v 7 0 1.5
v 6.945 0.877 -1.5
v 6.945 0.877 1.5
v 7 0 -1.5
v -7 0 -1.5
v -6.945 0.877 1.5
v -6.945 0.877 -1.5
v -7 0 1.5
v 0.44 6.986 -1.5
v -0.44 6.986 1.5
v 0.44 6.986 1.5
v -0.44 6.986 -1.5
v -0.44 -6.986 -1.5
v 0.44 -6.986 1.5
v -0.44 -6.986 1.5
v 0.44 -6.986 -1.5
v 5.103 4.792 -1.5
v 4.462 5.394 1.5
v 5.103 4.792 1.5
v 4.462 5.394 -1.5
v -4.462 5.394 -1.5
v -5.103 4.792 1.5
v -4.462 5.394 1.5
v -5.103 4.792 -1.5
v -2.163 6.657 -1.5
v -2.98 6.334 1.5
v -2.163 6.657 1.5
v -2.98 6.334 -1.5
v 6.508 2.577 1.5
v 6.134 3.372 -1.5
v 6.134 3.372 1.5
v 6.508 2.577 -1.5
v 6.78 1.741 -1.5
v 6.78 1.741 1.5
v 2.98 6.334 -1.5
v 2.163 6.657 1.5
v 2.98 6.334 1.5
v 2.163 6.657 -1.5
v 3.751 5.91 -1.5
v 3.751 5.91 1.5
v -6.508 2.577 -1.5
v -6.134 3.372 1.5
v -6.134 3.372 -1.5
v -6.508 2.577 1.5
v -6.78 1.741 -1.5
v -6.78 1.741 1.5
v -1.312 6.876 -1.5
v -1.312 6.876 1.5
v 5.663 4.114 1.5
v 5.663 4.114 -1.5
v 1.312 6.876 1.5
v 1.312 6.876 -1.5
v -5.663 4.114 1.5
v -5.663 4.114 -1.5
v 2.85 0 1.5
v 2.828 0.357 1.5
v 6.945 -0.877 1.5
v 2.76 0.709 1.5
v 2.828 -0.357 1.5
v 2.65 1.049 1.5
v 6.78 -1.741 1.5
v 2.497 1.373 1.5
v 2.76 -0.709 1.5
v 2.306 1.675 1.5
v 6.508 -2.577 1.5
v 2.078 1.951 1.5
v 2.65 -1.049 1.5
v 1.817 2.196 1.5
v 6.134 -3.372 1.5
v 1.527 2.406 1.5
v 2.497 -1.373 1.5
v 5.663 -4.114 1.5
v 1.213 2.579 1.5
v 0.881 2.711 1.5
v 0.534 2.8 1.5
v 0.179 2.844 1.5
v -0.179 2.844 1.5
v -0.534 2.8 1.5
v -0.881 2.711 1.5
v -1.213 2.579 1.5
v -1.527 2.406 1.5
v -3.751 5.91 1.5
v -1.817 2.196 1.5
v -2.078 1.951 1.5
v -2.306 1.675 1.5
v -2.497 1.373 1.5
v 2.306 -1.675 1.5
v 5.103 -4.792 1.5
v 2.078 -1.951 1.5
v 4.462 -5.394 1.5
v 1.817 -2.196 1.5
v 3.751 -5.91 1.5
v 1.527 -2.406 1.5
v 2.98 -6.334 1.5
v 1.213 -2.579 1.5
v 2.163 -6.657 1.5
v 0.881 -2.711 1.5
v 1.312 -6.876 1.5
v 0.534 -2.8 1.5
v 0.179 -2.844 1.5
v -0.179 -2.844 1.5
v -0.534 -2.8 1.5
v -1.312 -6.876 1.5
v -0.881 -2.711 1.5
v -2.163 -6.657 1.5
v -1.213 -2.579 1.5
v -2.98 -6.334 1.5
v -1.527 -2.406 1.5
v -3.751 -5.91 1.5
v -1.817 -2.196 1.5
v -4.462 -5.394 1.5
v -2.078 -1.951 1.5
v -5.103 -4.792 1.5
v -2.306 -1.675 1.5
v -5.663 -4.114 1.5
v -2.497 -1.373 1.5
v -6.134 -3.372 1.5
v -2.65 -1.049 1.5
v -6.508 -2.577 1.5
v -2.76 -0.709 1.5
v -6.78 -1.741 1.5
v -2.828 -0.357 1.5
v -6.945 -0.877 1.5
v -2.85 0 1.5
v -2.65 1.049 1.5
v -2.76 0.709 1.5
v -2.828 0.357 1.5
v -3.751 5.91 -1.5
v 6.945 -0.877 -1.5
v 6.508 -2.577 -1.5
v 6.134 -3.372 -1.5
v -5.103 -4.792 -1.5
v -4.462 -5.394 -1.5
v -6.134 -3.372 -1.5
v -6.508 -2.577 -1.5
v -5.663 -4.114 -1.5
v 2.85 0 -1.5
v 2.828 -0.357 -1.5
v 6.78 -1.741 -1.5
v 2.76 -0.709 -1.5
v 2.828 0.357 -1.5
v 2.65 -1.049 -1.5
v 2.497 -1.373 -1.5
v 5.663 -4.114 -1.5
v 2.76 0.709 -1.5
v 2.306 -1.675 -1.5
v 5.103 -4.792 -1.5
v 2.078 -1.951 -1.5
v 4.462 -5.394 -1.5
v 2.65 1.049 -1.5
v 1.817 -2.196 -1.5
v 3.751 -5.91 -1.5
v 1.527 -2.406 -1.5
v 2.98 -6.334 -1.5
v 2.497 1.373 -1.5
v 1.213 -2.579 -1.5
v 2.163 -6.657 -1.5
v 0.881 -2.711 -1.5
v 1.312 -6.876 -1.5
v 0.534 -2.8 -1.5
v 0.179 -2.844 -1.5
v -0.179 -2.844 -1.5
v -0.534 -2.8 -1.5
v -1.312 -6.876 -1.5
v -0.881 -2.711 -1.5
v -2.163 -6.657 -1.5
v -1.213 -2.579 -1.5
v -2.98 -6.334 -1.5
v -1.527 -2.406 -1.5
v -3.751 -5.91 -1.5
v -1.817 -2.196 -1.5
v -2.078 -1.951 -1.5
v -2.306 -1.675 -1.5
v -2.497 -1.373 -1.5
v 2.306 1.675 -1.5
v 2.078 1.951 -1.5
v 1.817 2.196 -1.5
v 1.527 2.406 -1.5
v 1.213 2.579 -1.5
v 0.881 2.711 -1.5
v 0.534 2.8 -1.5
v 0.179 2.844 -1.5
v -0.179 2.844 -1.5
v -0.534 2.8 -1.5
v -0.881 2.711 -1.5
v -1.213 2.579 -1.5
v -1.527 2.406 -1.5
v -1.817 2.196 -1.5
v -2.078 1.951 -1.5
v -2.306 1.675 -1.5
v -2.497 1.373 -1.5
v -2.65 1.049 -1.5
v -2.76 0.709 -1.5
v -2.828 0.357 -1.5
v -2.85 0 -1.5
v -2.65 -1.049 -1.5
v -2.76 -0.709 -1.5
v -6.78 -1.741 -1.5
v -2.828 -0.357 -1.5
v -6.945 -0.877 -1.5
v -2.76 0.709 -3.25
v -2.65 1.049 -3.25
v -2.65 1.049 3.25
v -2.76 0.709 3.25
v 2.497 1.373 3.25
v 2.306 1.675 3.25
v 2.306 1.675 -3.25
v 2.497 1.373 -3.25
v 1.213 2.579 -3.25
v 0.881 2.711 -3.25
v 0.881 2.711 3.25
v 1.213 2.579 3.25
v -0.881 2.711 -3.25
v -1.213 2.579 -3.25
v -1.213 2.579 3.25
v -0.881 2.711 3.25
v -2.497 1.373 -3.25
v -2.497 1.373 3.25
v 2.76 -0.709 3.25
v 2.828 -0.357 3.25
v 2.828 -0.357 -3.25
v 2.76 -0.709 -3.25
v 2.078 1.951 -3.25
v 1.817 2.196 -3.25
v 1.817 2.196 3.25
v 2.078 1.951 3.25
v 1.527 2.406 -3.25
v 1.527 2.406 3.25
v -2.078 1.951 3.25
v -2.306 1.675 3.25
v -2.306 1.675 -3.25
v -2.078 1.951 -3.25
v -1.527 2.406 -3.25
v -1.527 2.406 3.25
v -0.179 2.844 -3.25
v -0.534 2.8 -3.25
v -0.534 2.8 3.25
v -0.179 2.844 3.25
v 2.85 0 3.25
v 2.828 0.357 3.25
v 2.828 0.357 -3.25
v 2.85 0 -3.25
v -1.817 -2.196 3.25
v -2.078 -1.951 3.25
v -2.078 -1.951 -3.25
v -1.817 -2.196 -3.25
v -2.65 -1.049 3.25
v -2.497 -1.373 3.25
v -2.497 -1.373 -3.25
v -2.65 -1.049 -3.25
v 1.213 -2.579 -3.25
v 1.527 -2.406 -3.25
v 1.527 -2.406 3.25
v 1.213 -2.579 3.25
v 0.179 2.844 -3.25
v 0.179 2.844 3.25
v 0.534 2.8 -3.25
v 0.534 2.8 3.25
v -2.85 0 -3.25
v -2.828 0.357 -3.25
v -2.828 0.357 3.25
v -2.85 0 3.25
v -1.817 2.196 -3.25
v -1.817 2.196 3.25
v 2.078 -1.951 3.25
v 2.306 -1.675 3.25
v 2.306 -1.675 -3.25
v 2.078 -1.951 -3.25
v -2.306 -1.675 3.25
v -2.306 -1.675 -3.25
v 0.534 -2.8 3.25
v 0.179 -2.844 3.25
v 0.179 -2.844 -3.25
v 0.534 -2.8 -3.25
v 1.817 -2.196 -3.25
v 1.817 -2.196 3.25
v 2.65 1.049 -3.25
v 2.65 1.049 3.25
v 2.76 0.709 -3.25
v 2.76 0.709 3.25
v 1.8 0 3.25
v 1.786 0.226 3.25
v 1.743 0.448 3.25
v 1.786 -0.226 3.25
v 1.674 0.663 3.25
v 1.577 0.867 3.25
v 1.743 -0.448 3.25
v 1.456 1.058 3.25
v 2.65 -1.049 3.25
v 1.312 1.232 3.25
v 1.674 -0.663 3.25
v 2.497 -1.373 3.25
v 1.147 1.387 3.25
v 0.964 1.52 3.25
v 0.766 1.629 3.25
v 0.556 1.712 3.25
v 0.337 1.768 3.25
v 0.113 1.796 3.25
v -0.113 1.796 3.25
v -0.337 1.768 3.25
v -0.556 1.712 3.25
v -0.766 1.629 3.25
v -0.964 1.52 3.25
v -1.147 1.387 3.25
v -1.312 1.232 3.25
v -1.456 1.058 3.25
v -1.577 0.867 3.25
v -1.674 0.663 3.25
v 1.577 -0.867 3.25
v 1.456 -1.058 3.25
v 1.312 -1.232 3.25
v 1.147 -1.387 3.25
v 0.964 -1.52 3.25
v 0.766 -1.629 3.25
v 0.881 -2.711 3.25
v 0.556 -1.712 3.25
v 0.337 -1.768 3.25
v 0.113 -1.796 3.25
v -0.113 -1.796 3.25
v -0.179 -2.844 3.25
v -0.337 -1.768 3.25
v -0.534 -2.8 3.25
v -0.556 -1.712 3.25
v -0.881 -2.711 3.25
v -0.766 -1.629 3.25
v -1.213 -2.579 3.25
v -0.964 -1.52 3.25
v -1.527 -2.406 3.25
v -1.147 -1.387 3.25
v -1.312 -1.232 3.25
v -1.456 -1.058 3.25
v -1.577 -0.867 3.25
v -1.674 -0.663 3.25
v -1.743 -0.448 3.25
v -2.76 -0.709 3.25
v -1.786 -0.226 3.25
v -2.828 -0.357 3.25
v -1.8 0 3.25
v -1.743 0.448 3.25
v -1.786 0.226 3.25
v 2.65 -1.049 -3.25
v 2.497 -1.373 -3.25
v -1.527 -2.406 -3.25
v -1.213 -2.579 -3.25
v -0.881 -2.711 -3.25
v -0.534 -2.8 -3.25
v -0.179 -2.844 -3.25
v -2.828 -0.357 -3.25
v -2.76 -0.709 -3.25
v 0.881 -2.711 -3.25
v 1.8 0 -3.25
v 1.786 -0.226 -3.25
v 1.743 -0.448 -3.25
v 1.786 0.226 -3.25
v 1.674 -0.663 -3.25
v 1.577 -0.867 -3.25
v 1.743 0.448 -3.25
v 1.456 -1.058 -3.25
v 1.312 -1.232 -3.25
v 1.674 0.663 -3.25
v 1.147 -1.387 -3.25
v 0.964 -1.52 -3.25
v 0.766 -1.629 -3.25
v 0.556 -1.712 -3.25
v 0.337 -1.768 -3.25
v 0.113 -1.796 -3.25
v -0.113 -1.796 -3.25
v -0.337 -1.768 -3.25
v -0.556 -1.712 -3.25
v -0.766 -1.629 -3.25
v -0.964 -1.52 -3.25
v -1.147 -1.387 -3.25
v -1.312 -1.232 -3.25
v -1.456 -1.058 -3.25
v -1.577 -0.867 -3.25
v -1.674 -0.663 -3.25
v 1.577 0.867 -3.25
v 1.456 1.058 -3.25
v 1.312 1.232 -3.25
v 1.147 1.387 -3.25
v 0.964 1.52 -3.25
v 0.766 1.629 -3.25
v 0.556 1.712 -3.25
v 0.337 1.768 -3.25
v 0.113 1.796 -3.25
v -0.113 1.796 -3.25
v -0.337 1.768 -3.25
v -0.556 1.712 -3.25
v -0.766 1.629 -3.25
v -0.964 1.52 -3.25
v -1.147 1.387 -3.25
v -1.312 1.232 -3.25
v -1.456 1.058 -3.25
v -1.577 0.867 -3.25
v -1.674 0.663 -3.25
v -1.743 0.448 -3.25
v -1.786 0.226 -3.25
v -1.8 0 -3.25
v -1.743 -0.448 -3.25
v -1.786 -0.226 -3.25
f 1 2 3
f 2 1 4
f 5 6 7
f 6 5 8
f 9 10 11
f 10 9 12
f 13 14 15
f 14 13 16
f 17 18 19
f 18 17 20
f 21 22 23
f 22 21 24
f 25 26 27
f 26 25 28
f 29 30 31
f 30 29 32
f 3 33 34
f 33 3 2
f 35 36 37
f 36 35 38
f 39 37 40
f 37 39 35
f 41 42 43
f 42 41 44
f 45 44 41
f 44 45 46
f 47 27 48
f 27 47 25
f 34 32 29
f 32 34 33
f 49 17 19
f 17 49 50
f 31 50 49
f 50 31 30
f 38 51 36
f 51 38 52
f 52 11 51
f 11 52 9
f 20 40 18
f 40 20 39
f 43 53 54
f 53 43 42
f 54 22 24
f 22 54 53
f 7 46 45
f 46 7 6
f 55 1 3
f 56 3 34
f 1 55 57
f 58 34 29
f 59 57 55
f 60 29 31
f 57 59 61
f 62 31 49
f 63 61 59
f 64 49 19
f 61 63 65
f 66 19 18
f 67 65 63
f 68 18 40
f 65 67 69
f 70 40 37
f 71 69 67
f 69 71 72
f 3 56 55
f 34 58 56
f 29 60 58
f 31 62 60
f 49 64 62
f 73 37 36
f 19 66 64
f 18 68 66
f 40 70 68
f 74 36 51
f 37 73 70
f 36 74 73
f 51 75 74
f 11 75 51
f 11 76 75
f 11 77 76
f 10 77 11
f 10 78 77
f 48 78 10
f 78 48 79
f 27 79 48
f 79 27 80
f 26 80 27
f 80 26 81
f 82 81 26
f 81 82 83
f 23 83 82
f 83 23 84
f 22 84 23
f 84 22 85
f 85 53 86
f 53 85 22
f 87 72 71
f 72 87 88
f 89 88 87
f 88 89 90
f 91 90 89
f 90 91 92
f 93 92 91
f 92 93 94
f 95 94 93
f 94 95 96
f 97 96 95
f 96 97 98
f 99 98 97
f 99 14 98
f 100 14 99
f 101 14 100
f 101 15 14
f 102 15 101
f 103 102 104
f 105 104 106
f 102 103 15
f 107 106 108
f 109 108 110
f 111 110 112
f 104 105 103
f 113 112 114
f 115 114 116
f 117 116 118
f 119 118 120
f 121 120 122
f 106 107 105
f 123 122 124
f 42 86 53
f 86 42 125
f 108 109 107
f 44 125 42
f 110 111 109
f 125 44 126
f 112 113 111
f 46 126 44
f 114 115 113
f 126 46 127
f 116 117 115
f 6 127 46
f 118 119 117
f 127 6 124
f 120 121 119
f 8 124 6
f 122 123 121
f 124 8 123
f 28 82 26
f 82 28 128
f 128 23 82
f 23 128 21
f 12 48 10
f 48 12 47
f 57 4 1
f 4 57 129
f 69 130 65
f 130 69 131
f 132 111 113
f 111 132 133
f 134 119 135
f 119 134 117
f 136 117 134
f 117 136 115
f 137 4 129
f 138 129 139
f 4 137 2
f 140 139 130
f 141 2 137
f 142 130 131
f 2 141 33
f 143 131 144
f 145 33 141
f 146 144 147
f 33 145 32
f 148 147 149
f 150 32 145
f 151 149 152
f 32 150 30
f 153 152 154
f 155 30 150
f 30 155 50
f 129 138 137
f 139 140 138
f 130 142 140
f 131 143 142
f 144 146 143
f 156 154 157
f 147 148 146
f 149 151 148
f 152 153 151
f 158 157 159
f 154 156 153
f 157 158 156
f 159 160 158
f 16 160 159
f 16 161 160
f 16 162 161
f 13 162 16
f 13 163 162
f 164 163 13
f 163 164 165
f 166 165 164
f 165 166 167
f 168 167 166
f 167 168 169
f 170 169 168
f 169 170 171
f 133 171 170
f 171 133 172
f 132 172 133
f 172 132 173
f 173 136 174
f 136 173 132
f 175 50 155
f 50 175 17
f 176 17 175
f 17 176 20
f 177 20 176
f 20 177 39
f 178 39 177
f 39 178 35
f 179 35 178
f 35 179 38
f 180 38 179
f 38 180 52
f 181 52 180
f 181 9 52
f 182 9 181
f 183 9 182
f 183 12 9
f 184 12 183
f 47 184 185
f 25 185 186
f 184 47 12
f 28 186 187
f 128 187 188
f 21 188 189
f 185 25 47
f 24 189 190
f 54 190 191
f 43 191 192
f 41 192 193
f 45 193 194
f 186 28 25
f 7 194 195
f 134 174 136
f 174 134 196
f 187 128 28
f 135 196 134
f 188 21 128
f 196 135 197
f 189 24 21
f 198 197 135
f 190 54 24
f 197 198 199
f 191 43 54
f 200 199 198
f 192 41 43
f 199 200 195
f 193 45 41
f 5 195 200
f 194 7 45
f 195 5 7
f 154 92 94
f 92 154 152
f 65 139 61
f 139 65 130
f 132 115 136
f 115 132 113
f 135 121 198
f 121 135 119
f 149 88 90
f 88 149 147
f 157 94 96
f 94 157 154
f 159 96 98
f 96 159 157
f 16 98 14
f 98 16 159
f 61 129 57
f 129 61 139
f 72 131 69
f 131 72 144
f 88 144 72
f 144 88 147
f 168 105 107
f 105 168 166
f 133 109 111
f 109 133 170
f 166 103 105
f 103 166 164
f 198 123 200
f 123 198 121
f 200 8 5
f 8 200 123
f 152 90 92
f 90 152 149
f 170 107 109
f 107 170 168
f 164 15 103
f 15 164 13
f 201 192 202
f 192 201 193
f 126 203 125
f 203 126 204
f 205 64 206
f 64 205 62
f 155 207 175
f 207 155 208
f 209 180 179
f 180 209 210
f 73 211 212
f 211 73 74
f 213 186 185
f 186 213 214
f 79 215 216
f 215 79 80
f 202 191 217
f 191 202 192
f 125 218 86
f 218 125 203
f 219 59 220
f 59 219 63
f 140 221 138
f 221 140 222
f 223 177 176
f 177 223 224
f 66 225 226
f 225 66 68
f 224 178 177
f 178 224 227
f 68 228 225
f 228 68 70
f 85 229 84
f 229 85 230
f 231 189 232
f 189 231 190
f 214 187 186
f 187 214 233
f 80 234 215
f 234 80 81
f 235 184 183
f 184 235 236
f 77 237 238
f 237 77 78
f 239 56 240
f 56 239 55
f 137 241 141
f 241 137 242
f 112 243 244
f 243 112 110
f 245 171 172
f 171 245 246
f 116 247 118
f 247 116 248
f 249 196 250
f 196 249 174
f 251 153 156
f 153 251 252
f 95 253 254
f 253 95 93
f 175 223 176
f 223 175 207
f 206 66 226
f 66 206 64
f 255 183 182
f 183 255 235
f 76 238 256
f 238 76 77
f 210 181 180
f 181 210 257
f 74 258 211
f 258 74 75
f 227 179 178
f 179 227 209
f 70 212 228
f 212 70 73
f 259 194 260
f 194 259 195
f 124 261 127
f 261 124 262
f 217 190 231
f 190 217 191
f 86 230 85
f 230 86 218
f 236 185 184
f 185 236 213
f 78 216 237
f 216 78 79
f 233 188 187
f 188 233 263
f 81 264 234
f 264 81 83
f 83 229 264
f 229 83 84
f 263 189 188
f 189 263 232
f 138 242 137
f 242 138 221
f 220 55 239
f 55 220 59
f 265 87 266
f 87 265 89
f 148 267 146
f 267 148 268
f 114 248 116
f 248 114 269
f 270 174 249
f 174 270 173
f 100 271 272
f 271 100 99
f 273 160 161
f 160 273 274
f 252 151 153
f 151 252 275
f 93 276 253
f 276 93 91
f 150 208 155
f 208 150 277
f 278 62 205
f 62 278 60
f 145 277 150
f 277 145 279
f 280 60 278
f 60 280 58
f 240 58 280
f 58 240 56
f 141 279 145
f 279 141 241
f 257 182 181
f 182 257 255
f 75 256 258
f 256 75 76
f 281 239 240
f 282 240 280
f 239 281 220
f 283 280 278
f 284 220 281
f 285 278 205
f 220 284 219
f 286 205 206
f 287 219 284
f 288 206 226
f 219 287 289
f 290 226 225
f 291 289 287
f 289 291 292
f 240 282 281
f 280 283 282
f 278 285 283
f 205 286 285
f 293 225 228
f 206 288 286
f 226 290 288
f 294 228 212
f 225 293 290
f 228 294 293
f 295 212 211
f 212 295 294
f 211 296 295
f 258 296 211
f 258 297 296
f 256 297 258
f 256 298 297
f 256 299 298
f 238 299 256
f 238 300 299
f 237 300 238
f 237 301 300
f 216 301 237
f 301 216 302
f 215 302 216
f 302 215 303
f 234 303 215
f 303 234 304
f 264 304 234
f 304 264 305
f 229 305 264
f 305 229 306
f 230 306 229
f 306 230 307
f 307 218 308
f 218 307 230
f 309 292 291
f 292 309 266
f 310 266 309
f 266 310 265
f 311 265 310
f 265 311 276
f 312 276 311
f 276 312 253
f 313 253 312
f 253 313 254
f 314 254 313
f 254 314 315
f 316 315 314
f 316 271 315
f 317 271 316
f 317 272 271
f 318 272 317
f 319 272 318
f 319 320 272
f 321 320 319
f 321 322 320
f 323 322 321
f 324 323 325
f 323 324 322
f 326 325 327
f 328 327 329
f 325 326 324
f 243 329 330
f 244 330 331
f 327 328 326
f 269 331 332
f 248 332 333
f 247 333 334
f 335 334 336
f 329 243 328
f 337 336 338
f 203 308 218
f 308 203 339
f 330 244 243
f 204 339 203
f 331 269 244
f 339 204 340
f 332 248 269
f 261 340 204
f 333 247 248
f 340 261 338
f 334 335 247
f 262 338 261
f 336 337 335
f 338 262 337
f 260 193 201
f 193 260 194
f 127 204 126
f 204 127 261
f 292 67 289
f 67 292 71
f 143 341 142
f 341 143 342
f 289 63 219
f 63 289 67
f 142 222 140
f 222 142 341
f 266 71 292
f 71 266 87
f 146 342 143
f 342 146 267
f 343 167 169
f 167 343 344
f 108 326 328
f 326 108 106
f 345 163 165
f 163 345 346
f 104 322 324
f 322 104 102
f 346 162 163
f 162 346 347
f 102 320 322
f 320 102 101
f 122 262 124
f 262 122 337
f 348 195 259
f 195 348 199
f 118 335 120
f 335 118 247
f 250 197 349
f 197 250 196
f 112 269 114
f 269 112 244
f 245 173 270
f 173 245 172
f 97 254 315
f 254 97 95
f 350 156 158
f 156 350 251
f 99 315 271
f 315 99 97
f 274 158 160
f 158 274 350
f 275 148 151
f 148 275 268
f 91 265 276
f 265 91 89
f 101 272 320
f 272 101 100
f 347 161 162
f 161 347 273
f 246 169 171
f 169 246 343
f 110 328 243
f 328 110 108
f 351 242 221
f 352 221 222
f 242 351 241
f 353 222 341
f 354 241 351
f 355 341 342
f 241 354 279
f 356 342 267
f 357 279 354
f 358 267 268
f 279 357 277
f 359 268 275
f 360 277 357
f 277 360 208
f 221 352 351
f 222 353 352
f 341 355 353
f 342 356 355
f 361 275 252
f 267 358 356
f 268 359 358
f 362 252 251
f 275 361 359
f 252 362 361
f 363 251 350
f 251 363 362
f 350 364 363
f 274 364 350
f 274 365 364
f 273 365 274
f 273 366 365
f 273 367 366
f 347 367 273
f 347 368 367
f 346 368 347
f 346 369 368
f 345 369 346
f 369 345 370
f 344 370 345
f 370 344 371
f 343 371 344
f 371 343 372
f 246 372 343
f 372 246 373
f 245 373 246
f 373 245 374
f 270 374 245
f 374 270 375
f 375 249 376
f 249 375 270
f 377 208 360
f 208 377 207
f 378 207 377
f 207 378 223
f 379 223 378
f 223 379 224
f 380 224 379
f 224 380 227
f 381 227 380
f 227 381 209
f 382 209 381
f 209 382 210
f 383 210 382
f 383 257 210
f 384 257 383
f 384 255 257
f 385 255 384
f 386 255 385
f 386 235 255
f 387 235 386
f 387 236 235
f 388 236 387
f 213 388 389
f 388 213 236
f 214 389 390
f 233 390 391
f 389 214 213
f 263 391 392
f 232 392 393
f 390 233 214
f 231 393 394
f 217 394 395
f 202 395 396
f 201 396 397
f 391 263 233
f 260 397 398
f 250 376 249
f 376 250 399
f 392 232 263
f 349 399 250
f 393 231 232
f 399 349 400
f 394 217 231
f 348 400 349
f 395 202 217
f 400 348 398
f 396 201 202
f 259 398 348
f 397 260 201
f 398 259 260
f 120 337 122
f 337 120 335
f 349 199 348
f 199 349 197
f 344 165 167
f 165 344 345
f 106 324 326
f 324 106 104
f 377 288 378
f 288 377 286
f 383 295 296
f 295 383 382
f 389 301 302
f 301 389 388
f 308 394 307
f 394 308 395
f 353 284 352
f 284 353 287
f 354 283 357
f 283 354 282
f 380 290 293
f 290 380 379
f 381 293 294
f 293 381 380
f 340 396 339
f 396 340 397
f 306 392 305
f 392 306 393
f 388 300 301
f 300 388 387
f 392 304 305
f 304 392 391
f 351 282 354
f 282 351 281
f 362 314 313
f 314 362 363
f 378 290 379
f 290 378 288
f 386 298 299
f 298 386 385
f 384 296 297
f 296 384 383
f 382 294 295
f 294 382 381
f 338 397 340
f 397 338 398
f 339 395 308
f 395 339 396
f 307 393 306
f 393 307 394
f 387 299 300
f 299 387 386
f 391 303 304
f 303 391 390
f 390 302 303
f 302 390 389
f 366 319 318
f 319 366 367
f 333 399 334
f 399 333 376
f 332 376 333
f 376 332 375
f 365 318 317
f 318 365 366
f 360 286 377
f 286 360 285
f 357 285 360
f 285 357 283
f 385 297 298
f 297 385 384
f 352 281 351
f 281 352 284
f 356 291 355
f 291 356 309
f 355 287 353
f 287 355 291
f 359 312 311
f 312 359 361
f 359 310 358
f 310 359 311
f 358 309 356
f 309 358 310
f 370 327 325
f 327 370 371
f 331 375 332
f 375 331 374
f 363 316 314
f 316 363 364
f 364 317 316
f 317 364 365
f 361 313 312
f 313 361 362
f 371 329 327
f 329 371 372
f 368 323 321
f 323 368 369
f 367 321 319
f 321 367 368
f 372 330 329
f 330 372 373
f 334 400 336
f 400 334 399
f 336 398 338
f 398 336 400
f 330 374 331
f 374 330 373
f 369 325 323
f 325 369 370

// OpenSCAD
$fn = 50;


difference() {
	union() {
		translate(v = [0, 0, -1.5000000000]) {
			rotate(a = [0, 0, 0]) {
				cylinder(h = 3, r = 7.0000000000);
			}
		}
		translate(v = [0, 0, -3.2500000000]) {
			rotate(a = [0, 0, 0]) {
				cylinder(h = 6.5000000000, r = 2.8500000000);
			}
		}
	}
	union() {
		translate(v = [0, 0, -125.0000000000]) {
			rotate(a = [0, 0, 0]) {
				cylinder(h = 250, r = 1.8000000000);
			}
		}
	}
}
